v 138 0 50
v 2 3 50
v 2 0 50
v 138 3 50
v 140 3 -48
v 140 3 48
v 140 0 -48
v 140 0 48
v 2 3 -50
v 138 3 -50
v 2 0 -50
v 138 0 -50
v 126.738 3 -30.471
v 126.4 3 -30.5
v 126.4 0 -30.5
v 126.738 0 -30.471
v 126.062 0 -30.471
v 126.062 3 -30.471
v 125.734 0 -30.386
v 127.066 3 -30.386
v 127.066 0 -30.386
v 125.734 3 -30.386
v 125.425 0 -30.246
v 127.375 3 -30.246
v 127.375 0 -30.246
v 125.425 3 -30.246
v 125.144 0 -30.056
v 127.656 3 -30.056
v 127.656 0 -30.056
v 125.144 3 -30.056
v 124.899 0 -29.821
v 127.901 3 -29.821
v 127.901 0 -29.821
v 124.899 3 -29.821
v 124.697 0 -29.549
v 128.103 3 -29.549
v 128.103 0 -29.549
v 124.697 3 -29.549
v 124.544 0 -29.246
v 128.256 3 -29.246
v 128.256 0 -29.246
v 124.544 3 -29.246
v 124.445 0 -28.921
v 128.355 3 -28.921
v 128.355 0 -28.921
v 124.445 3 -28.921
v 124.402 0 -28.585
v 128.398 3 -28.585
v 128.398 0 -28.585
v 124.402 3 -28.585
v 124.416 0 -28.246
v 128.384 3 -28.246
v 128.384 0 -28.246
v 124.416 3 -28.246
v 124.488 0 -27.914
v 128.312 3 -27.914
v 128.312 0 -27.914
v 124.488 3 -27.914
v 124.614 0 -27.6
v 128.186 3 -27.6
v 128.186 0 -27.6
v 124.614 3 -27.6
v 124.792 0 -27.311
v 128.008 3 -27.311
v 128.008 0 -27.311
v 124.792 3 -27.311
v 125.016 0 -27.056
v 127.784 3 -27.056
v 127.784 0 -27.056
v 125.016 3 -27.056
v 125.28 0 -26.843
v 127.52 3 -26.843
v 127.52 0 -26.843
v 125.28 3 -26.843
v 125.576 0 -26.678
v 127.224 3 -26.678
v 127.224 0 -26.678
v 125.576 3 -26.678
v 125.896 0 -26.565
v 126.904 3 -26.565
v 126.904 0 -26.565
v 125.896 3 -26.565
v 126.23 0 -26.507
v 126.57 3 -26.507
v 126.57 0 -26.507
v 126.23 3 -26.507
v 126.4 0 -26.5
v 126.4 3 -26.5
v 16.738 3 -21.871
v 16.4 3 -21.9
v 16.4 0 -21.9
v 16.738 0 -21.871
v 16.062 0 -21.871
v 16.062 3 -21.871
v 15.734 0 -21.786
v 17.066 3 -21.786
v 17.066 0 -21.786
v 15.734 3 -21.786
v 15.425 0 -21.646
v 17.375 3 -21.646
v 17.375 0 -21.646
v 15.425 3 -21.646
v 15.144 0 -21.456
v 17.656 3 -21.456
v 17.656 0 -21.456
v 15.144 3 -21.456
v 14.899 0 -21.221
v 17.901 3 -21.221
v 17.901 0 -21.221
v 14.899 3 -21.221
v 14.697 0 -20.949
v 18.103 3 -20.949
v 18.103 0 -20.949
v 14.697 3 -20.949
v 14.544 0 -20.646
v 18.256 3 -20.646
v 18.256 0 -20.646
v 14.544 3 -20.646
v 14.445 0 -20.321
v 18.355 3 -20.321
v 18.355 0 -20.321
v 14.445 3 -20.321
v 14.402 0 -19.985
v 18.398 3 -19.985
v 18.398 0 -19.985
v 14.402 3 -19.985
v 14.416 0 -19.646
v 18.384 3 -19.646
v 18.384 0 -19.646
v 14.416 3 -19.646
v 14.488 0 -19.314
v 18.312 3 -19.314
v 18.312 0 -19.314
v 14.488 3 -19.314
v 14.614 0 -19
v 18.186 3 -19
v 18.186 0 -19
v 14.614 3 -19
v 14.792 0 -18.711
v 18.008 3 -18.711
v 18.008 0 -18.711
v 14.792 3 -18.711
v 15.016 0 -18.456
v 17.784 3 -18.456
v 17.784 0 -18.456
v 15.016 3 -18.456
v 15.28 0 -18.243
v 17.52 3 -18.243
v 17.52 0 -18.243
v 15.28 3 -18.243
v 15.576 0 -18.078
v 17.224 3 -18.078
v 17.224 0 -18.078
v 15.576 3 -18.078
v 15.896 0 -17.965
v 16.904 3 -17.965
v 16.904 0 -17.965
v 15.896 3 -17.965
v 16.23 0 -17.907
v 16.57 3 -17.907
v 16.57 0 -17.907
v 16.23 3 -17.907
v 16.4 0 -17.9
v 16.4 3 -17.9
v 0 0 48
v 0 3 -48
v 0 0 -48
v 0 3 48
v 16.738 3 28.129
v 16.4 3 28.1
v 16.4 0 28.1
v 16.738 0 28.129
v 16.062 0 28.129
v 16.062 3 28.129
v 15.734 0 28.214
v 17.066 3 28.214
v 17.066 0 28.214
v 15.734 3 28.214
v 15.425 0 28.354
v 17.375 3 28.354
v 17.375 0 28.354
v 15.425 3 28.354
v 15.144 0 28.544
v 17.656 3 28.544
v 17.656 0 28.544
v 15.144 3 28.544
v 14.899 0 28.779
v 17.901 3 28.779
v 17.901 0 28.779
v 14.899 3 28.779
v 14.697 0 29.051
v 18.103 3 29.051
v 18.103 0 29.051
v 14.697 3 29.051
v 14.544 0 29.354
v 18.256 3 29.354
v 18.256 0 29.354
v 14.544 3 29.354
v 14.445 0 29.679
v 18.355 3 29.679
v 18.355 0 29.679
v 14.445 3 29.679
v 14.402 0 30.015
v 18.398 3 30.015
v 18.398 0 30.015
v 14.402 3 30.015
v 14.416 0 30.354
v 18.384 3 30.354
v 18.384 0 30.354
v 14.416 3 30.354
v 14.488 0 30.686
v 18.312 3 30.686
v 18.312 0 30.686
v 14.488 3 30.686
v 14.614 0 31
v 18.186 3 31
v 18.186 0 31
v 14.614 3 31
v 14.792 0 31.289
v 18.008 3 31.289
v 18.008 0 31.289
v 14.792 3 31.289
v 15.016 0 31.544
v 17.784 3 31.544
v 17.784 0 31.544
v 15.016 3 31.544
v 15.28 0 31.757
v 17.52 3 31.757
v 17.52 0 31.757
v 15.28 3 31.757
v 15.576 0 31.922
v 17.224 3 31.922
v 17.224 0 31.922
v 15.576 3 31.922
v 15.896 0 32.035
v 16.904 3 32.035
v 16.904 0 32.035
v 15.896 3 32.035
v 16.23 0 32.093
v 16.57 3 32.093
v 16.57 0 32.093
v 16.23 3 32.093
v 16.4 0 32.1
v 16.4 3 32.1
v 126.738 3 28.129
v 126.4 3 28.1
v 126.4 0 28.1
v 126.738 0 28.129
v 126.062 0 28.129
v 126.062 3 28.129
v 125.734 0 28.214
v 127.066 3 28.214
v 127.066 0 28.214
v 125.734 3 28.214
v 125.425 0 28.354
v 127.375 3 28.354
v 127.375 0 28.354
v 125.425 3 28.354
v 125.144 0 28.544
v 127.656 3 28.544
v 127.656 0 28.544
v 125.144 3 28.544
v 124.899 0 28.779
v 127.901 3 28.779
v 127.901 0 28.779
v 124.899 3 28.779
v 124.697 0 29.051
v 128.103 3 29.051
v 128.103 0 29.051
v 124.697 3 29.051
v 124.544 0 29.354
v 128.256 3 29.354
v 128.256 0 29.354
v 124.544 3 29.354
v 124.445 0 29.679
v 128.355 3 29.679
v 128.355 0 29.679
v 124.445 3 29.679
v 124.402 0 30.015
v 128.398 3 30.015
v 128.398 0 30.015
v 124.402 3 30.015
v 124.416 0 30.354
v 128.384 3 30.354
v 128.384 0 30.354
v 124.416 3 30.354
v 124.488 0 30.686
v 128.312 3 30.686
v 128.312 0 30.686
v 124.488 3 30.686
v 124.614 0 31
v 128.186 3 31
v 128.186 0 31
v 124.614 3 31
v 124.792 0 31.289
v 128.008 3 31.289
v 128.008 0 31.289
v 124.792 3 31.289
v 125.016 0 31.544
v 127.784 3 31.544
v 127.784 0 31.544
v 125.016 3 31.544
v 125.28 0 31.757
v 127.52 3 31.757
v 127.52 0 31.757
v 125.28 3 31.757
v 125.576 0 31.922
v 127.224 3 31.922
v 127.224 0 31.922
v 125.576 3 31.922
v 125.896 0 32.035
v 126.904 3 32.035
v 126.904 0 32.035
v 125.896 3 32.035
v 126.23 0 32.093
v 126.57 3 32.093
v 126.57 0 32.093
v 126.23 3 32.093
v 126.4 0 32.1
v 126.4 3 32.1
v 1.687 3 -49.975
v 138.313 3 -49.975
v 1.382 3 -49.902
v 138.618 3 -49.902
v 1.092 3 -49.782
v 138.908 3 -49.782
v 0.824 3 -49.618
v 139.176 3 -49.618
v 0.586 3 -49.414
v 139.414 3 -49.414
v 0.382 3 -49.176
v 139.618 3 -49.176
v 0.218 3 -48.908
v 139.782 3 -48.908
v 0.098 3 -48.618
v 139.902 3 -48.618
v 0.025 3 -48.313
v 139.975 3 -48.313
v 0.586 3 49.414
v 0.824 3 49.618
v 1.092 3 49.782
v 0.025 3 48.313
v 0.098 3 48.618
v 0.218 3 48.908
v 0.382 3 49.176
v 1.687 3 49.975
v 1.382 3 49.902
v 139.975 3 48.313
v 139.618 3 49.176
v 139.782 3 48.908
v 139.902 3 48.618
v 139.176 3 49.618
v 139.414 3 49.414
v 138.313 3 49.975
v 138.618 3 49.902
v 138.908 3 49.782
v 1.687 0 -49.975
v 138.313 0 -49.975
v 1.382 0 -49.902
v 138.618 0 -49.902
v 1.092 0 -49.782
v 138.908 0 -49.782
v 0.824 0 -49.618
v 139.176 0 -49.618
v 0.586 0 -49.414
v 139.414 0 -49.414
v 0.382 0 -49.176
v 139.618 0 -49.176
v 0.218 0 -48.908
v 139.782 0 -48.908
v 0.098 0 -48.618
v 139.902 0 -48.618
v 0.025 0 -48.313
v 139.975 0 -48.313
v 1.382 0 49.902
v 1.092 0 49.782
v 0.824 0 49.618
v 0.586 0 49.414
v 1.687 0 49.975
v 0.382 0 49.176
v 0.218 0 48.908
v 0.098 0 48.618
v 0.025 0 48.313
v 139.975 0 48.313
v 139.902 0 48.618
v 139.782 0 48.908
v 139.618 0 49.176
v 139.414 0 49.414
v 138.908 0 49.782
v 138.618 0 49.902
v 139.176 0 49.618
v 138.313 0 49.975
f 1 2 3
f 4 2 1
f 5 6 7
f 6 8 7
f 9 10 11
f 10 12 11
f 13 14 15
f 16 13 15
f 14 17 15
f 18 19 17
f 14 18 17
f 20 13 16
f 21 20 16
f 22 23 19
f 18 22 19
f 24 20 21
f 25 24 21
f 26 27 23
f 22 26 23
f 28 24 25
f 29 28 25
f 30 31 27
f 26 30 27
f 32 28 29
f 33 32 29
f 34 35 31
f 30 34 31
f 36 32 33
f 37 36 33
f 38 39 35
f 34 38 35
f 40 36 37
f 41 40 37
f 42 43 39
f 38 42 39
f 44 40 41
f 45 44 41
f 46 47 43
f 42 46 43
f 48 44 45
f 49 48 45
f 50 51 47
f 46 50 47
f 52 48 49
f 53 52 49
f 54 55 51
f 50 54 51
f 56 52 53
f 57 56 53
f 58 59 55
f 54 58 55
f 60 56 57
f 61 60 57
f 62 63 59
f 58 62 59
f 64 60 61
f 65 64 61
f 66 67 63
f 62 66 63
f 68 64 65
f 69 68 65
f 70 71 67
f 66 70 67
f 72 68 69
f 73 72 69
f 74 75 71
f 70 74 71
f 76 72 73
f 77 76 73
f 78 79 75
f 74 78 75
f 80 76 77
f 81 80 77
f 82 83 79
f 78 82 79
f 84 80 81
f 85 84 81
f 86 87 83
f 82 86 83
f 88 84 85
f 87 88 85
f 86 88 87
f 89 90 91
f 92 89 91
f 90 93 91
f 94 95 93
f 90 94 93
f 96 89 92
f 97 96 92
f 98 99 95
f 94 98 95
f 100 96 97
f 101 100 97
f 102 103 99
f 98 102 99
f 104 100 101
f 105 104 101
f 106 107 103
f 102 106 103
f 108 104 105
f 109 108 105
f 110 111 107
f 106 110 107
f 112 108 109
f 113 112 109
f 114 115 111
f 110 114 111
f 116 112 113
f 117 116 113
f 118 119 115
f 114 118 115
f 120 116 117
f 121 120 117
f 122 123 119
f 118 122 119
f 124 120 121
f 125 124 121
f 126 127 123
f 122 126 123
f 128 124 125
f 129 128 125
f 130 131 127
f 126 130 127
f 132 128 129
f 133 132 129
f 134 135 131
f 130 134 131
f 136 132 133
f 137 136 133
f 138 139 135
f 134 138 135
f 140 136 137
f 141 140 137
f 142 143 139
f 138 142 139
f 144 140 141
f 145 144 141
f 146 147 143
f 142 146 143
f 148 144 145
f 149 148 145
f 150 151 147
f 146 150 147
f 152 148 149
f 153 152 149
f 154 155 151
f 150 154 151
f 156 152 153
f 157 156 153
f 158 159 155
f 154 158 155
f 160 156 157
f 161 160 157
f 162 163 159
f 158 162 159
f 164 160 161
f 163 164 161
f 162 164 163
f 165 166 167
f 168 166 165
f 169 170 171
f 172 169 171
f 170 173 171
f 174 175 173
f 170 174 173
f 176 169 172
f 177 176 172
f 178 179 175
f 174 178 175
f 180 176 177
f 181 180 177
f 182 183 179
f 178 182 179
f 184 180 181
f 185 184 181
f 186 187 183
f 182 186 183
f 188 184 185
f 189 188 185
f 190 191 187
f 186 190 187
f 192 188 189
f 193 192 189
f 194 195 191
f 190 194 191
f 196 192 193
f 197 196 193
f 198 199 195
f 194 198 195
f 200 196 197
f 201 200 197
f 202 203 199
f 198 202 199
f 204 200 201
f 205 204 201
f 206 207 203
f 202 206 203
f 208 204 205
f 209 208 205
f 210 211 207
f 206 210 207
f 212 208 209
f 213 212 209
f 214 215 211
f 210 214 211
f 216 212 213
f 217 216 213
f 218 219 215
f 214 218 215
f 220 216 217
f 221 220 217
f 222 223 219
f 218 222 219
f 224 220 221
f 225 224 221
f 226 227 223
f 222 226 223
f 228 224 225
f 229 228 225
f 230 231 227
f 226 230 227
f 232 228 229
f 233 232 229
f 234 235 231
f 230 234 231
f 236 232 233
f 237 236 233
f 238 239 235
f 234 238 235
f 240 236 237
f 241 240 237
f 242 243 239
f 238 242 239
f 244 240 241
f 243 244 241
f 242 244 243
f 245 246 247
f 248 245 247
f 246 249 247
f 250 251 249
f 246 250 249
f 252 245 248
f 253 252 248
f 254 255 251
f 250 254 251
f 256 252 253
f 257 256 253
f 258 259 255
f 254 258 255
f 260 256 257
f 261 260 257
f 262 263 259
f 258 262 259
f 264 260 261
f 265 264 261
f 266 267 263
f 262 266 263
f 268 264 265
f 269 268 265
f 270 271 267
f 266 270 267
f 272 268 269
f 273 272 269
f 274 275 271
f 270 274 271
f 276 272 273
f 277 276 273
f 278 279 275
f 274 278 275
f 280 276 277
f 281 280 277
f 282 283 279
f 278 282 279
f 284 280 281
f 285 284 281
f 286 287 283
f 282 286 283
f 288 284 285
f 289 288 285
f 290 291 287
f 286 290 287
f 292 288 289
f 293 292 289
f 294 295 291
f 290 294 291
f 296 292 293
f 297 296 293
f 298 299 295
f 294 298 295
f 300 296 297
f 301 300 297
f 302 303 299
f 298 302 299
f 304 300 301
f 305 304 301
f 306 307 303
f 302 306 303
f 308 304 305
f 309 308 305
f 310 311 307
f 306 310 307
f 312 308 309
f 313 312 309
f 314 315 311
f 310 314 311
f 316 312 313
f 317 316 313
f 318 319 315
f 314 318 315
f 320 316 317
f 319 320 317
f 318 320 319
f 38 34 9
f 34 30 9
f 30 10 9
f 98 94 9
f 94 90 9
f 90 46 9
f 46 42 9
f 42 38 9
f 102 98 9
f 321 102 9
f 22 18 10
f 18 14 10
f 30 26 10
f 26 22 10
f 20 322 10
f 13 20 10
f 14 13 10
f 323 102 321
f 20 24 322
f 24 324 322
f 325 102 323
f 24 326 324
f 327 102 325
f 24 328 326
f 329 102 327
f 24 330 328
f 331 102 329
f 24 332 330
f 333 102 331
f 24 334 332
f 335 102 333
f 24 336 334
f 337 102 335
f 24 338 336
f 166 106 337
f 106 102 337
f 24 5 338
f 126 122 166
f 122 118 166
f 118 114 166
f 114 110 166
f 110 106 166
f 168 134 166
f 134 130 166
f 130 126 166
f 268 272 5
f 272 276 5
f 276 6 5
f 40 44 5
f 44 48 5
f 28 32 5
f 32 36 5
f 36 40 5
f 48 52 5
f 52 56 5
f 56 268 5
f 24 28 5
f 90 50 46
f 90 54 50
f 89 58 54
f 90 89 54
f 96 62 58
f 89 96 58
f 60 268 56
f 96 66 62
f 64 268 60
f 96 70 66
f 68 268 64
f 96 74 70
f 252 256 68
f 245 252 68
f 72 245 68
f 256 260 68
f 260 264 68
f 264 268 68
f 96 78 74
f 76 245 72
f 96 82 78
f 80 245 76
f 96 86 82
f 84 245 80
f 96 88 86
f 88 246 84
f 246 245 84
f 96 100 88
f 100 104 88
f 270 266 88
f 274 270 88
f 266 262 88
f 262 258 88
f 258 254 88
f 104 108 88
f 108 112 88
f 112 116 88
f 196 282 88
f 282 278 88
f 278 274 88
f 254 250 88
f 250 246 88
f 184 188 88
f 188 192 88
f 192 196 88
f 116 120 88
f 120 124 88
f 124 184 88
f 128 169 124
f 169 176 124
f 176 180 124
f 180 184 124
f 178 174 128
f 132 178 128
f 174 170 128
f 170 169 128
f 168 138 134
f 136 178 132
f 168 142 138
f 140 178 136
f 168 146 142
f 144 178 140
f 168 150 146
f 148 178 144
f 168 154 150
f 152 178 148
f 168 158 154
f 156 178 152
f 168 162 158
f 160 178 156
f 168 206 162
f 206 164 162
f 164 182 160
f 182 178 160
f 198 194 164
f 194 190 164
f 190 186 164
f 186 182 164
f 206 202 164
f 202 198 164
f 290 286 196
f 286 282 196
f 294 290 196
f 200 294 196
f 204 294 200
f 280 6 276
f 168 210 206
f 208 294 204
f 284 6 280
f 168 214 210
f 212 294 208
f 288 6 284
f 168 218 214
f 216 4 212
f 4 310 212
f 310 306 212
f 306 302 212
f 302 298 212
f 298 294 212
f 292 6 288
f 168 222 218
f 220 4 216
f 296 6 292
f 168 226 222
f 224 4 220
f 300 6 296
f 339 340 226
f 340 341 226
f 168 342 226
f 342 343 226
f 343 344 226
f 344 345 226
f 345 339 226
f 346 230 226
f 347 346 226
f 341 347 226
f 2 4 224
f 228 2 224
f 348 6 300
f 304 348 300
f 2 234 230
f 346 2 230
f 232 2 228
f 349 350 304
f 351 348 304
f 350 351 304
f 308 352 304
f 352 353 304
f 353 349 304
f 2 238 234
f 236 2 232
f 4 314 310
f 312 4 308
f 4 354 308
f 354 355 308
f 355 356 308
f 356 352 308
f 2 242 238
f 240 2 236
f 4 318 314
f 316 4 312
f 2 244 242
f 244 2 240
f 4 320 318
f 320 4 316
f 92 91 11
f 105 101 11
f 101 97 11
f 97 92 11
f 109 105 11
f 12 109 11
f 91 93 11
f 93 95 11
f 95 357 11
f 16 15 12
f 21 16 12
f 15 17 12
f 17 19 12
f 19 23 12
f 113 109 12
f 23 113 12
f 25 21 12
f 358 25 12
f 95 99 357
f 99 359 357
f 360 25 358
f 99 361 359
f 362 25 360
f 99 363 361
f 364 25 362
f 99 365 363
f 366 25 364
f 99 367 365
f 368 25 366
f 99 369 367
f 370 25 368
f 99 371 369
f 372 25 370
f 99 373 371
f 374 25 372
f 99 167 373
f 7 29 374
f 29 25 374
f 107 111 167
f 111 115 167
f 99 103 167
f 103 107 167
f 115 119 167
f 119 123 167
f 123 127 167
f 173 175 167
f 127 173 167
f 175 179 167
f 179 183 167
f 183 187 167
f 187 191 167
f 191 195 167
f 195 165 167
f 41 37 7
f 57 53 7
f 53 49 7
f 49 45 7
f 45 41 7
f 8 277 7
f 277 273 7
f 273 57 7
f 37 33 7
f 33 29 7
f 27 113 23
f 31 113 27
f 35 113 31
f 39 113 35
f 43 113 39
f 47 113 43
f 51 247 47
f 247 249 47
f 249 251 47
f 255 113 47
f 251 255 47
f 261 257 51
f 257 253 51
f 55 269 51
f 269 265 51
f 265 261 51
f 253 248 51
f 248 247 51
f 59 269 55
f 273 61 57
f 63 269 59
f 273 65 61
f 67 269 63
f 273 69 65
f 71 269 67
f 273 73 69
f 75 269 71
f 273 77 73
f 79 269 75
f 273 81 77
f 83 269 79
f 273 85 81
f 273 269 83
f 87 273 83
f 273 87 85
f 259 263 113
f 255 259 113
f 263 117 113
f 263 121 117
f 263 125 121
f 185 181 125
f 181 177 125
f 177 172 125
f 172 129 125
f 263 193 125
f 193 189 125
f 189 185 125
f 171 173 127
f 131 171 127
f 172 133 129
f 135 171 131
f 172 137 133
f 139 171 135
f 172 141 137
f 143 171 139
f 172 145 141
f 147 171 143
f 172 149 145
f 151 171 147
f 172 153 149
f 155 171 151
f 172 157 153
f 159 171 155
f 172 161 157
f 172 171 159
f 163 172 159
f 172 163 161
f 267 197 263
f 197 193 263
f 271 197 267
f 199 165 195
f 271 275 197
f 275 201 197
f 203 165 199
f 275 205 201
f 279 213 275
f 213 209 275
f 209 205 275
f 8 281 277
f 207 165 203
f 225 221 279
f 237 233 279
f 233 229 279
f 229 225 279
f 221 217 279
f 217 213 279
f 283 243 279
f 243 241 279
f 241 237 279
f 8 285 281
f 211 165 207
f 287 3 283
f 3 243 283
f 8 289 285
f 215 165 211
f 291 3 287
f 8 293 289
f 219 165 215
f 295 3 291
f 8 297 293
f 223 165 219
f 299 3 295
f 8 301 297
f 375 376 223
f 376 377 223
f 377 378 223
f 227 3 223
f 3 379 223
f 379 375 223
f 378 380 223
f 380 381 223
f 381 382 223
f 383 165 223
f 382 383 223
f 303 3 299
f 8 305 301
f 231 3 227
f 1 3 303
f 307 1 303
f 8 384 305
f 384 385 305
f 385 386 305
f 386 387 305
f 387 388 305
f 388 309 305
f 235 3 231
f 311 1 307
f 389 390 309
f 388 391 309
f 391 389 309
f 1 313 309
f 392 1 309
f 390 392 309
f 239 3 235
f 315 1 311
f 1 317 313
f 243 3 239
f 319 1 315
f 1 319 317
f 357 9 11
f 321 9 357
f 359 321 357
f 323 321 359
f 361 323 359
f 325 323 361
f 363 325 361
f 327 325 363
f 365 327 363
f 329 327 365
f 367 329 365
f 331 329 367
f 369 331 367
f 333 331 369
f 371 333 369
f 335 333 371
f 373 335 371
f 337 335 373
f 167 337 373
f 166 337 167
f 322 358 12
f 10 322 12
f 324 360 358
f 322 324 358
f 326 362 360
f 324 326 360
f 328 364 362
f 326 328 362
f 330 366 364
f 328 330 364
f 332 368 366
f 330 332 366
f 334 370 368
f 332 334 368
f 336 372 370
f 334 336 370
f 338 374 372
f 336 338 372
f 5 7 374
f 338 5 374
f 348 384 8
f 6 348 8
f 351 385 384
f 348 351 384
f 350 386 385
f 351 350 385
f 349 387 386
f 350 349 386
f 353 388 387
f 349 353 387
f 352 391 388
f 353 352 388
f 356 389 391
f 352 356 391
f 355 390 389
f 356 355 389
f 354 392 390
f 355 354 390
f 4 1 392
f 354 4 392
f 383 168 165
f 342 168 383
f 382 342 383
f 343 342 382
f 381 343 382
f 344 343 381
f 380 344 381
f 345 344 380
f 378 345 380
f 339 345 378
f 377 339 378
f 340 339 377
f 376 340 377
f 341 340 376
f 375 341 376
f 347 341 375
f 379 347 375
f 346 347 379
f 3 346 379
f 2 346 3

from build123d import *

# Parameters (mm, degrees)
SKETCH_1_R      = 2
EXTRUDE_1_DEPTH = 3
FILLET_1_R      = 2


with BuildPart() as part:
    # 草图1 → 凸台-拉伸1 (new body)
    with BuildSketch(Plane(origin=(0, 0, 0), x_dir=(1, 0, 0), z_dir=(0, 1, 0))):
        Polygon((0, 0), (0, -50), (140, -50), (140, 50), (0, 50), align=None)
        with Locations(Location((16.4, -30.1, 0), (0, 0, 270))):
            Circle(SKETCH_1_R, mode=Mode.SUBTRACT)
        with Locations(Location((16.4, 19.9, 0), (0, 0, 270))):
            Circle(SKETCH_1_R, mode=Mode.SUBTRACT)
        with Locations(Location((126.4, 28.5, 0), (0, 0, 270))):
            Circle(SKETCH_1_R, mode=Mode.SUBTRACT)
        with Locations(Location((126.4, -30.1, 0), (0, 0, 270))):
            Circle(SKETCH_1_R, mode=Mode.SUBTRACT)
    extrude(amount=EXTRUDE_1_DEPTH)

    # 圆角1
    fillet_1_edges = [part.edges().sort_by_distance(p)[0] for p in [
        (0, 1.5, 50),
        (0, 1.5, -50),
        (140, 1.5, -50),
        (140, 1.5, 50),
    ]]
    fillet(fillet_1_edges, radius=FILLET_1_R)


solid = part.part
